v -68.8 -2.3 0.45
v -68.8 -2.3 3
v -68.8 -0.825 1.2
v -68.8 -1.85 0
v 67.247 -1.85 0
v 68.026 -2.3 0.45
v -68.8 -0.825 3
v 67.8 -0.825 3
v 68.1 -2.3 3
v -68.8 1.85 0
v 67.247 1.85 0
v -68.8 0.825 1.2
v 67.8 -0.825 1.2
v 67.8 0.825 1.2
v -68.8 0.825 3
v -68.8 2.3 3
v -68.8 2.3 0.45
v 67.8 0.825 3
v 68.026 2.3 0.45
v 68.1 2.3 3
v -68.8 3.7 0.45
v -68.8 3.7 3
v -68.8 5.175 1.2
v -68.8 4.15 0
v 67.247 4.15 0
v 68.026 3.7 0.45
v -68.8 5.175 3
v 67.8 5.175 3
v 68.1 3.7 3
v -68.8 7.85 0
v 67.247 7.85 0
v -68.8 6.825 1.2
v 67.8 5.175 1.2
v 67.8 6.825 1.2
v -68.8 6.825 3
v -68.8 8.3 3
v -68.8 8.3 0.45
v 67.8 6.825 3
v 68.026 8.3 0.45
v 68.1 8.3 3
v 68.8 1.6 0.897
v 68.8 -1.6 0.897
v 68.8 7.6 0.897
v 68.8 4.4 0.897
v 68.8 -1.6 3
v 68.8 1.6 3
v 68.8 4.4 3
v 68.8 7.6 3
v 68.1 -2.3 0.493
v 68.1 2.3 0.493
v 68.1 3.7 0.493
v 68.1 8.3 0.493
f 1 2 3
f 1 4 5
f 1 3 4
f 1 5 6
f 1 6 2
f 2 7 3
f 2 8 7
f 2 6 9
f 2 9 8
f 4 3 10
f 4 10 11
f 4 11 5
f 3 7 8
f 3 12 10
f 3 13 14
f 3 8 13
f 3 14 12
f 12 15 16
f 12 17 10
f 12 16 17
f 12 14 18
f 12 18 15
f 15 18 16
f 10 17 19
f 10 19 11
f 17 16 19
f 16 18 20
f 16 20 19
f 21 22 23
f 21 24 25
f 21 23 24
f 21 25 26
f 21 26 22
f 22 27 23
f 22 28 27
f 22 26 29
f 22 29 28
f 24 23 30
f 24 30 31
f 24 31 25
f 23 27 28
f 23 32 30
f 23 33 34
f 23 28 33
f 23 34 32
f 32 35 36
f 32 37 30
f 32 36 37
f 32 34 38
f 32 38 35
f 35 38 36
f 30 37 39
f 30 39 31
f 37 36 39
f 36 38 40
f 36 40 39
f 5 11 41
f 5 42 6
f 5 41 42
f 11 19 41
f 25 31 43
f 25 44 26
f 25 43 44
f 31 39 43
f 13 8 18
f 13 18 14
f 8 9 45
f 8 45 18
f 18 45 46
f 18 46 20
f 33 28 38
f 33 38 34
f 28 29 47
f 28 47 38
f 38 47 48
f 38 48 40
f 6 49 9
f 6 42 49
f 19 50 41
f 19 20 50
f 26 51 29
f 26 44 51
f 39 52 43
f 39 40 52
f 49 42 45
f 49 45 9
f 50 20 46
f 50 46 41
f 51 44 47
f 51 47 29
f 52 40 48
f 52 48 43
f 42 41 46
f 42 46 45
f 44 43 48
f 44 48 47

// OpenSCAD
use<pcb_rails.scad>;

pcb_edge();
translate([0, 6, 0]) pcb_edge();
